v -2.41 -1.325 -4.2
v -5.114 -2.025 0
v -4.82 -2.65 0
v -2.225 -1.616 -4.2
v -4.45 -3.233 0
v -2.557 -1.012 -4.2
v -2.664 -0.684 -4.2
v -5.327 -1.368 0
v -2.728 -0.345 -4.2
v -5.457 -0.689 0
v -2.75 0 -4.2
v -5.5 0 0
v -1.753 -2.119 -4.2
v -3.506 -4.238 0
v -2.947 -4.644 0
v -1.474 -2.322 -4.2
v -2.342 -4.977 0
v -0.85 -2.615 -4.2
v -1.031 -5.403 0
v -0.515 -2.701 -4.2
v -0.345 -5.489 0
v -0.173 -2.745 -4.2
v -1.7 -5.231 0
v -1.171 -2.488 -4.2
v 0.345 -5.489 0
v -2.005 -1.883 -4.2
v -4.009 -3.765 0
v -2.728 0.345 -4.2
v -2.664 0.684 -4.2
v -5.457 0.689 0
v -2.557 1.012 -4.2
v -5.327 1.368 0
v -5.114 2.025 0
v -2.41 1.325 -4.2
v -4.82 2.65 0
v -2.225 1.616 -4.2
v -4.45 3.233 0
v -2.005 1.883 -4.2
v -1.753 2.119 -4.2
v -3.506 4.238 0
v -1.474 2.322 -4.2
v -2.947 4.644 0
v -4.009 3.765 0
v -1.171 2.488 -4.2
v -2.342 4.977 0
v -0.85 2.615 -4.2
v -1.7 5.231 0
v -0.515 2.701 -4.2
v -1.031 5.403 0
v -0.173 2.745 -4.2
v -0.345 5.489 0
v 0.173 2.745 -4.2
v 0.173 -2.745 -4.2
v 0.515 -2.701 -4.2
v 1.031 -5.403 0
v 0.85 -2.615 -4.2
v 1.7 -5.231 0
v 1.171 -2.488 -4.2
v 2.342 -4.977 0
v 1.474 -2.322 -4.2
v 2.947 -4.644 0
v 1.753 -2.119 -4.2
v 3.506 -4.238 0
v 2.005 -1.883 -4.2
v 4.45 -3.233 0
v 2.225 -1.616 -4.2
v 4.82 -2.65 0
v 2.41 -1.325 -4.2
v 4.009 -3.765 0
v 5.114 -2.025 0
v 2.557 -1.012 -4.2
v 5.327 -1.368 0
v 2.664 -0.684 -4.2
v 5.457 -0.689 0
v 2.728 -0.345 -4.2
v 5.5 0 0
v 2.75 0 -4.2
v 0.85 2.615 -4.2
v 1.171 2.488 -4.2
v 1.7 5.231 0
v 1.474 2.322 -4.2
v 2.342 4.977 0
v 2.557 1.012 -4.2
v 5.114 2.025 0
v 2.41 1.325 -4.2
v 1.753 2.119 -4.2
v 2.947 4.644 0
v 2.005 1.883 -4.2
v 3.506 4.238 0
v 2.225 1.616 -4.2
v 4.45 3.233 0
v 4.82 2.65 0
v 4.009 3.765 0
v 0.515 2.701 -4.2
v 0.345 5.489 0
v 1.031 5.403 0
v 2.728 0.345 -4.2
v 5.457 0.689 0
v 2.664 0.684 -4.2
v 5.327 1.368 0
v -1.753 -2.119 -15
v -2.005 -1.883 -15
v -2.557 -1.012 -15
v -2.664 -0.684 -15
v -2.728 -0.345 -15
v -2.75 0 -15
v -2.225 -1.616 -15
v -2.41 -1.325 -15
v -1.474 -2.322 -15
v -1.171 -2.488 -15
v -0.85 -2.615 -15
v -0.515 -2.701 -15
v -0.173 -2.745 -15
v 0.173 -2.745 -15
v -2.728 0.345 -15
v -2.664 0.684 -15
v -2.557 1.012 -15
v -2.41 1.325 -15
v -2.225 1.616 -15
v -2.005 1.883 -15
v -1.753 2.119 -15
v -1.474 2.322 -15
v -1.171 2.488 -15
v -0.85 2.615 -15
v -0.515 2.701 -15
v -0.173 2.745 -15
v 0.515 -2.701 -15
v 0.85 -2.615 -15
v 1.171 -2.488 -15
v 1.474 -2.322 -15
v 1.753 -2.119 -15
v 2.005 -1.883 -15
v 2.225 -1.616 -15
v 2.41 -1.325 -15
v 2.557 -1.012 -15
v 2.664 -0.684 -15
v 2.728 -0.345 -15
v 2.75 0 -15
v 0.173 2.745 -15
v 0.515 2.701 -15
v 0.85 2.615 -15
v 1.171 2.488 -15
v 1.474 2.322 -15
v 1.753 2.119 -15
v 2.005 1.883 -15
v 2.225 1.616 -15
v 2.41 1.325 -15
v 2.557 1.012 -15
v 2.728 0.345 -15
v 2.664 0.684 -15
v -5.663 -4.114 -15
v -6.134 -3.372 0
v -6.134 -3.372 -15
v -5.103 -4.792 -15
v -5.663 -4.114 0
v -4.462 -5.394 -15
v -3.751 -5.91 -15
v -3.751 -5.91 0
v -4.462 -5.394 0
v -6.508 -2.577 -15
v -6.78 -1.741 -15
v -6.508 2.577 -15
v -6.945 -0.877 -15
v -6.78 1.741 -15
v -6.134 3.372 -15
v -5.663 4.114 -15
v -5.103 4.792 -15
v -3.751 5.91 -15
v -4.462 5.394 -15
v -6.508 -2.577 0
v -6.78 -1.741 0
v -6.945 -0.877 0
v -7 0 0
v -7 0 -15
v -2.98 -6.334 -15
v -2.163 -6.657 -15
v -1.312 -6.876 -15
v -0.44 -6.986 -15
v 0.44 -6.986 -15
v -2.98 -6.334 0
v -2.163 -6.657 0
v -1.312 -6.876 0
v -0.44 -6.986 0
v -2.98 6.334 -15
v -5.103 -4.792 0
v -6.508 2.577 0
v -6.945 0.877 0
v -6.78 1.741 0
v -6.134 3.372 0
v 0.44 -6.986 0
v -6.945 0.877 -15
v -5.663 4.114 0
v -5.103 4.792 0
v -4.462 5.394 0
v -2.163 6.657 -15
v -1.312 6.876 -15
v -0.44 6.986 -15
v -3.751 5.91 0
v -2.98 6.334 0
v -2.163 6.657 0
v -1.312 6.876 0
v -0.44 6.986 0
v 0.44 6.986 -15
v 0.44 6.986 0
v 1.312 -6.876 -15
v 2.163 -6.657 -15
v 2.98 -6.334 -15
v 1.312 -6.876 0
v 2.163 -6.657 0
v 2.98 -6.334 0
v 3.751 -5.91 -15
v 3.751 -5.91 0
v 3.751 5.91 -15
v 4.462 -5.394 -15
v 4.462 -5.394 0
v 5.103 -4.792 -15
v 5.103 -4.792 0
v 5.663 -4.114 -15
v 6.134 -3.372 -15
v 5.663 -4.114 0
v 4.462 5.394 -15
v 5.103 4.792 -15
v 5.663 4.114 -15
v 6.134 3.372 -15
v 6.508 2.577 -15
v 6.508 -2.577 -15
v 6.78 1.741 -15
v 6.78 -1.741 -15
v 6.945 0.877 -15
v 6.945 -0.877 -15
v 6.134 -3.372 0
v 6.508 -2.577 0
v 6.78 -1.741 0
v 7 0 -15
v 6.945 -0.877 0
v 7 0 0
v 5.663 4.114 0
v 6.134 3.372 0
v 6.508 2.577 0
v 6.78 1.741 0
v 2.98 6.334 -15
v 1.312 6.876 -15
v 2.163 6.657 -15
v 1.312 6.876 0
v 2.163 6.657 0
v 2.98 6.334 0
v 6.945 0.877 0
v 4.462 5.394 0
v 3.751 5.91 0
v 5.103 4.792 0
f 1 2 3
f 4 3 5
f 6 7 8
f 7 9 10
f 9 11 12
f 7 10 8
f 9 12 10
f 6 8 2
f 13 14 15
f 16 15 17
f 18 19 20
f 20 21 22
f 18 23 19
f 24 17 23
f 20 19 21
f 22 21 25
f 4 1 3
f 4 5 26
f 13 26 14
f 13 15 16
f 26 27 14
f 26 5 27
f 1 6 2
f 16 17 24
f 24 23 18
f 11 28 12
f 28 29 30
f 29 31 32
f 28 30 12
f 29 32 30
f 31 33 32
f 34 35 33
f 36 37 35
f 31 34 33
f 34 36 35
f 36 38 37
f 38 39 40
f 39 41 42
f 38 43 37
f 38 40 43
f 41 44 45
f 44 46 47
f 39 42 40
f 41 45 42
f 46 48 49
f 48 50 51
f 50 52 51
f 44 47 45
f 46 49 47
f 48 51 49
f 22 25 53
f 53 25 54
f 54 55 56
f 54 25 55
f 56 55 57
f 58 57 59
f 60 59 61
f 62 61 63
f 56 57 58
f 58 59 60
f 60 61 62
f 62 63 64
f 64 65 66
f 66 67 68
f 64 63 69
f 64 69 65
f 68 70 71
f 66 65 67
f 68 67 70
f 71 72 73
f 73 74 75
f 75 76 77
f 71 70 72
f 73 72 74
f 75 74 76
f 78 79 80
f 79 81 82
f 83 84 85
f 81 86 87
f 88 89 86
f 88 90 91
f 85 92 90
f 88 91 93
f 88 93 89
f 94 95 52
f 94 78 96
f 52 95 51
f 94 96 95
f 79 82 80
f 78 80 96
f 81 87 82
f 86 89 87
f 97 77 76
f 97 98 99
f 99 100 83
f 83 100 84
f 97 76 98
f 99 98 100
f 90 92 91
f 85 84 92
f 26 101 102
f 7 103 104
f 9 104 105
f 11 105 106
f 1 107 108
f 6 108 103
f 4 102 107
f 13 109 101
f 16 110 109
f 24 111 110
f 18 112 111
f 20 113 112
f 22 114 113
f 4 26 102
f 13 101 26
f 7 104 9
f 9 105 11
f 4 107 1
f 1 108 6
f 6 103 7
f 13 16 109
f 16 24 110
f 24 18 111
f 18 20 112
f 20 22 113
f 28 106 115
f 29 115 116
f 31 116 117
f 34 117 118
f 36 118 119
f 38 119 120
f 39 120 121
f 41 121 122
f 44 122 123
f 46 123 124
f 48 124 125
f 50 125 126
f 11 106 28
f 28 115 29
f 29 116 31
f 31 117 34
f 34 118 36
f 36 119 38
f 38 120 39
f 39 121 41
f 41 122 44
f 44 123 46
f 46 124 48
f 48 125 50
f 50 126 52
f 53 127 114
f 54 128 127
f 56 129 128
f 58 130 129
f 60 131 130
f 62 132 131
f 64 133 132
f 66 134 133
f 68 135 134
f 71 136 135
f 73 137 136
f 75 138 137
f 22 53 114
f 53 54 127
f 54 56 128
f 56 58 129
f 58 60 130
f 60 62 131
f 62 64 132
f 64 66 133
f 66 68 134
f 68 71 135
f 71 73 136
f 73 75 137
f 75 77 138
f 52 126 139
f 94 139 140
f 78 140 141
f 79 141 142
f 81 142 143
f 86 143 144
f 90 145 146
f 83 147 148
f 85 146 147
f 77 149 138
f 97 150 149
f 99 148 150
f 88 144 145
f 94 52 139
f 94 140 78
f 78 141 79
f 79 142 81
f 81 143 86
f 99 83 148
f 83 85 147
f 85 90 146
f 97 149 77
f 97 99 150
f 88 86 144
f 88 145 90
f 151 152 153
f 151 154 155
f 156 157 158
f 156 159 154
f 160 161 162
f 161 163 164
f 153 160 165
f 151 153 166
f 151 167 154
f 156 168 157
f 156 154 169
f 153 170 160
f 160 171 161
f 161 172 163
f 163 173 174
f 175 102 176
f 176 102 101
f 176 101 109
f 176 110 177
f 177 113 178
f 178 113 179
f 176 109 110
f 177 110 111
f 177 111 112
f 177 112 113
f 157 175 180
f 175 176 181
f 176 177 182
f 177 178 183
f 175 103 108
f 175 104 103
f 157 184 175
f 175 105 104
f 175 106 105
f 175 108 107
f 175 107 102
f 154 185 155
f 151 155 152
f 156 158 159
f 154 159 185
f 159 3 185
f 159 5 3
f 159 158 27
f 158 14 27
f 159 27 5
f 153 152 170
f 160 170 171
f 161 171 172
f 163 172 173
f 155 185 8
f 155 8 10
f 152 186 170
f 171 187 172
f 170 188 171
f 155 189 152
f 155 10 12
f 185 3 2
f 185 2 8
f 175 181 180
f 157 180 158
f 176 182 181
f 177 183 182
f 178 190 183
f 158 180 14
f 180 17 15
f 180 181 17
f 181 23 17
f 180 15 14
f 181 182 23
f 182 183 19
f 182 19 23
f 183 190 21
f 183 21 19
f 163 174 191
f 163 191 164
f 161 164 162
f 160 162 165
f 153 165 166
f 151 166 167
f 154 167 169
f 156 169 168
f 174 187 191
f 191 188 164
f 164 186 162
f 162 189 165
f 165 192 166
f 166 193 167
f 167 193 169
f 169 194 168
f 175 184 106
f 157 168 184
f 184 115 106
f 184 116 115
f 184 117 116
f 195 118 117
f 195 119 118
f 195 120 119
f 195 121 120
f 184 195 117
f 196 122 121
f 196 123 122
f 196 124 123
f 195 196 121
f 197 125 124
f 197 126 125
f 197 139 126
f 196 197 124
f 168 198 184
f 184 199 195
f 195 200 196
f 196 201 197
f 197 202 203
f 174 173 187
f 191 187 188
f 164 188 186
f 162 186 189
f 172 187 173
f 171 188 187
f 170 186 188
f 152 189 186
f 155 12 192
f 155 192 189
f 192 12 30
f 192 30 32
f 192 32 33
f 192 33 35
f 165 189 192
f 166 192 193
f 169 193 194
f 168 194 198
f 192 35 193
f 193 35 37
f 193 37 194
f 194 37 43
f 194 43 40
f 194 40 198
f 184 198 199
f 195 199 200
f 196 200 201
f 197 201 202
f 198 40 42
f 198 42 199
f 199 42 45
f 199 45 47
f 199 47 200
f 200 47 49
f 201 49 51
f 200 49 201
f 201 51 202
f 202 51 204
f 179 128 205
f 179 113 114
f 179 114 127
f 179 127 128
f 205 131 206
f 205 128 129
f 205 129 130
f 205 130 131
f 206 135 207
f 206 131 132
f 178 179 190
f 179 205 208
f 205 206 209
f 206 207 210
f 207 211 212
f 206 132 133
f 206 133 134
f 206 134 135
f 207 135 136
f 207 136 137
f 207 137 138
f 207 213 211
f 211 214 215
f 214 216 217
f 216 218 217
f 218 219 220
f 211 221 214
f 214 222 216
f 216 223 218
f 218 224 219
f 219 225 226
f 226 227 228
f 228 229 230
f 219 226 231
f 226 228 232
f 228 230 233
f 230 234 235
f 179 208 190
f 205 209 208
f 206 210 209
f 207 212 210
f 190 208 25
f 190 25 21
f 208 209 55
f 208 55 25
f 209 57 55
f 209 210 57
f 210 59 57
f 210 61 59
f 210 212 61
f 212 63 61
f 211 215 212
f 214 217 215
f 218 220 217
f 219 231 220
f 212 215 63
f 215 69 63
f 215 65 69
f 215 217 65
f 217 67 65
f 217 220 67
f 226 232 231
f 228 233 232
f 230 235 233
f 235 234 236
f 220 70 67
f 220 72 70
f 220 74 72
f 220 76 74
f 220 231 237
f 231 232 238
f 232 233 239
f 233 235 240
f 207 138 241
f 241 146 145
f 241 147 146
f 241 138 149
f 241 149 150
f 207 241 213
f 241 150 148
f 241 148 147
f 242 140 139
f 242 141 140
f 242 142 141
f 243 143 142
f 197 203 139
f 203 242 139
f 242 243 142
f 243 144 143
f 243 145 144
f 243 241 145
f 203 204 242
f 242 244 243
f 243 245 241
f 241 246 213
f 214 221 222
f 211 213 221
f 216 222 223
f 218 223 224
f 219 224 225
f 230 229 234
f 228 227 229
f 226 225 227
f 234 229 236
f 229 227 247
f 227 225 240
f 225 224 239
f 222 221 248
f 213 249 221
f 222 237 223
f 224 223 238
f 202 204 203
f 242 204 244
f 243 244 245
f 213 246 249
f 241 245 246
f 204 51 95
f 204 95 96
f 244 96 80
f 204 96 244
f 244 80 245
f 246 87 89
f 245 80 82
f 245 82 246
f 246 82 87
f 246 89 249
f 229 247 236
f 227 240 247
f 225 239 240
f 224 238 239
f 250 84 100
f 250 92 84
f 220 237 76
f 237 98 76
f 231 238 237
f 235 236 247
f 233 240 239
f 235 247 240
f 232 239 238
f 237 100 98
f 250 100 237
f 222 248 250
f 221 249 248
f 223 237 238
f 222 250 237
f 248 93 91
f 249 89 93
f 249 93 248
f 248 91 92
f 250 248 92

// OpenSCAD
$fn = 50;


difference() {
	union() {
		translate(v = [0, 0, -15.0000000000]) {
			cylinder(h = 15, r = 7.0000000000);
		}
	}
	union() {
		translate(v = [0, 0, 0]) {
			rotate(a = [0, 0, 0]) {
				difference() {
					union() {
						translate(v = [0, 0, -18.0000000000]) {
							cylinder(h = 18, r = 2.2500000000);
						}
						translate(v = [0, 0, -4.2000000000]) {
							cylinder(h = 4.2000000000, r1 = 2.7500000000, r2 = 5.5000000000);
						}
						translate(v = [0, 0, -18.0000000000]) {
							cylinder(h = 18, r = 2.7500000000);
						}
						translate(v = [0, 0, -18.0000000000]) {
							cylinder(h = 18, r = 2.2500000000);
						}
					}
					union();
				}
			}
		}
	}
}
